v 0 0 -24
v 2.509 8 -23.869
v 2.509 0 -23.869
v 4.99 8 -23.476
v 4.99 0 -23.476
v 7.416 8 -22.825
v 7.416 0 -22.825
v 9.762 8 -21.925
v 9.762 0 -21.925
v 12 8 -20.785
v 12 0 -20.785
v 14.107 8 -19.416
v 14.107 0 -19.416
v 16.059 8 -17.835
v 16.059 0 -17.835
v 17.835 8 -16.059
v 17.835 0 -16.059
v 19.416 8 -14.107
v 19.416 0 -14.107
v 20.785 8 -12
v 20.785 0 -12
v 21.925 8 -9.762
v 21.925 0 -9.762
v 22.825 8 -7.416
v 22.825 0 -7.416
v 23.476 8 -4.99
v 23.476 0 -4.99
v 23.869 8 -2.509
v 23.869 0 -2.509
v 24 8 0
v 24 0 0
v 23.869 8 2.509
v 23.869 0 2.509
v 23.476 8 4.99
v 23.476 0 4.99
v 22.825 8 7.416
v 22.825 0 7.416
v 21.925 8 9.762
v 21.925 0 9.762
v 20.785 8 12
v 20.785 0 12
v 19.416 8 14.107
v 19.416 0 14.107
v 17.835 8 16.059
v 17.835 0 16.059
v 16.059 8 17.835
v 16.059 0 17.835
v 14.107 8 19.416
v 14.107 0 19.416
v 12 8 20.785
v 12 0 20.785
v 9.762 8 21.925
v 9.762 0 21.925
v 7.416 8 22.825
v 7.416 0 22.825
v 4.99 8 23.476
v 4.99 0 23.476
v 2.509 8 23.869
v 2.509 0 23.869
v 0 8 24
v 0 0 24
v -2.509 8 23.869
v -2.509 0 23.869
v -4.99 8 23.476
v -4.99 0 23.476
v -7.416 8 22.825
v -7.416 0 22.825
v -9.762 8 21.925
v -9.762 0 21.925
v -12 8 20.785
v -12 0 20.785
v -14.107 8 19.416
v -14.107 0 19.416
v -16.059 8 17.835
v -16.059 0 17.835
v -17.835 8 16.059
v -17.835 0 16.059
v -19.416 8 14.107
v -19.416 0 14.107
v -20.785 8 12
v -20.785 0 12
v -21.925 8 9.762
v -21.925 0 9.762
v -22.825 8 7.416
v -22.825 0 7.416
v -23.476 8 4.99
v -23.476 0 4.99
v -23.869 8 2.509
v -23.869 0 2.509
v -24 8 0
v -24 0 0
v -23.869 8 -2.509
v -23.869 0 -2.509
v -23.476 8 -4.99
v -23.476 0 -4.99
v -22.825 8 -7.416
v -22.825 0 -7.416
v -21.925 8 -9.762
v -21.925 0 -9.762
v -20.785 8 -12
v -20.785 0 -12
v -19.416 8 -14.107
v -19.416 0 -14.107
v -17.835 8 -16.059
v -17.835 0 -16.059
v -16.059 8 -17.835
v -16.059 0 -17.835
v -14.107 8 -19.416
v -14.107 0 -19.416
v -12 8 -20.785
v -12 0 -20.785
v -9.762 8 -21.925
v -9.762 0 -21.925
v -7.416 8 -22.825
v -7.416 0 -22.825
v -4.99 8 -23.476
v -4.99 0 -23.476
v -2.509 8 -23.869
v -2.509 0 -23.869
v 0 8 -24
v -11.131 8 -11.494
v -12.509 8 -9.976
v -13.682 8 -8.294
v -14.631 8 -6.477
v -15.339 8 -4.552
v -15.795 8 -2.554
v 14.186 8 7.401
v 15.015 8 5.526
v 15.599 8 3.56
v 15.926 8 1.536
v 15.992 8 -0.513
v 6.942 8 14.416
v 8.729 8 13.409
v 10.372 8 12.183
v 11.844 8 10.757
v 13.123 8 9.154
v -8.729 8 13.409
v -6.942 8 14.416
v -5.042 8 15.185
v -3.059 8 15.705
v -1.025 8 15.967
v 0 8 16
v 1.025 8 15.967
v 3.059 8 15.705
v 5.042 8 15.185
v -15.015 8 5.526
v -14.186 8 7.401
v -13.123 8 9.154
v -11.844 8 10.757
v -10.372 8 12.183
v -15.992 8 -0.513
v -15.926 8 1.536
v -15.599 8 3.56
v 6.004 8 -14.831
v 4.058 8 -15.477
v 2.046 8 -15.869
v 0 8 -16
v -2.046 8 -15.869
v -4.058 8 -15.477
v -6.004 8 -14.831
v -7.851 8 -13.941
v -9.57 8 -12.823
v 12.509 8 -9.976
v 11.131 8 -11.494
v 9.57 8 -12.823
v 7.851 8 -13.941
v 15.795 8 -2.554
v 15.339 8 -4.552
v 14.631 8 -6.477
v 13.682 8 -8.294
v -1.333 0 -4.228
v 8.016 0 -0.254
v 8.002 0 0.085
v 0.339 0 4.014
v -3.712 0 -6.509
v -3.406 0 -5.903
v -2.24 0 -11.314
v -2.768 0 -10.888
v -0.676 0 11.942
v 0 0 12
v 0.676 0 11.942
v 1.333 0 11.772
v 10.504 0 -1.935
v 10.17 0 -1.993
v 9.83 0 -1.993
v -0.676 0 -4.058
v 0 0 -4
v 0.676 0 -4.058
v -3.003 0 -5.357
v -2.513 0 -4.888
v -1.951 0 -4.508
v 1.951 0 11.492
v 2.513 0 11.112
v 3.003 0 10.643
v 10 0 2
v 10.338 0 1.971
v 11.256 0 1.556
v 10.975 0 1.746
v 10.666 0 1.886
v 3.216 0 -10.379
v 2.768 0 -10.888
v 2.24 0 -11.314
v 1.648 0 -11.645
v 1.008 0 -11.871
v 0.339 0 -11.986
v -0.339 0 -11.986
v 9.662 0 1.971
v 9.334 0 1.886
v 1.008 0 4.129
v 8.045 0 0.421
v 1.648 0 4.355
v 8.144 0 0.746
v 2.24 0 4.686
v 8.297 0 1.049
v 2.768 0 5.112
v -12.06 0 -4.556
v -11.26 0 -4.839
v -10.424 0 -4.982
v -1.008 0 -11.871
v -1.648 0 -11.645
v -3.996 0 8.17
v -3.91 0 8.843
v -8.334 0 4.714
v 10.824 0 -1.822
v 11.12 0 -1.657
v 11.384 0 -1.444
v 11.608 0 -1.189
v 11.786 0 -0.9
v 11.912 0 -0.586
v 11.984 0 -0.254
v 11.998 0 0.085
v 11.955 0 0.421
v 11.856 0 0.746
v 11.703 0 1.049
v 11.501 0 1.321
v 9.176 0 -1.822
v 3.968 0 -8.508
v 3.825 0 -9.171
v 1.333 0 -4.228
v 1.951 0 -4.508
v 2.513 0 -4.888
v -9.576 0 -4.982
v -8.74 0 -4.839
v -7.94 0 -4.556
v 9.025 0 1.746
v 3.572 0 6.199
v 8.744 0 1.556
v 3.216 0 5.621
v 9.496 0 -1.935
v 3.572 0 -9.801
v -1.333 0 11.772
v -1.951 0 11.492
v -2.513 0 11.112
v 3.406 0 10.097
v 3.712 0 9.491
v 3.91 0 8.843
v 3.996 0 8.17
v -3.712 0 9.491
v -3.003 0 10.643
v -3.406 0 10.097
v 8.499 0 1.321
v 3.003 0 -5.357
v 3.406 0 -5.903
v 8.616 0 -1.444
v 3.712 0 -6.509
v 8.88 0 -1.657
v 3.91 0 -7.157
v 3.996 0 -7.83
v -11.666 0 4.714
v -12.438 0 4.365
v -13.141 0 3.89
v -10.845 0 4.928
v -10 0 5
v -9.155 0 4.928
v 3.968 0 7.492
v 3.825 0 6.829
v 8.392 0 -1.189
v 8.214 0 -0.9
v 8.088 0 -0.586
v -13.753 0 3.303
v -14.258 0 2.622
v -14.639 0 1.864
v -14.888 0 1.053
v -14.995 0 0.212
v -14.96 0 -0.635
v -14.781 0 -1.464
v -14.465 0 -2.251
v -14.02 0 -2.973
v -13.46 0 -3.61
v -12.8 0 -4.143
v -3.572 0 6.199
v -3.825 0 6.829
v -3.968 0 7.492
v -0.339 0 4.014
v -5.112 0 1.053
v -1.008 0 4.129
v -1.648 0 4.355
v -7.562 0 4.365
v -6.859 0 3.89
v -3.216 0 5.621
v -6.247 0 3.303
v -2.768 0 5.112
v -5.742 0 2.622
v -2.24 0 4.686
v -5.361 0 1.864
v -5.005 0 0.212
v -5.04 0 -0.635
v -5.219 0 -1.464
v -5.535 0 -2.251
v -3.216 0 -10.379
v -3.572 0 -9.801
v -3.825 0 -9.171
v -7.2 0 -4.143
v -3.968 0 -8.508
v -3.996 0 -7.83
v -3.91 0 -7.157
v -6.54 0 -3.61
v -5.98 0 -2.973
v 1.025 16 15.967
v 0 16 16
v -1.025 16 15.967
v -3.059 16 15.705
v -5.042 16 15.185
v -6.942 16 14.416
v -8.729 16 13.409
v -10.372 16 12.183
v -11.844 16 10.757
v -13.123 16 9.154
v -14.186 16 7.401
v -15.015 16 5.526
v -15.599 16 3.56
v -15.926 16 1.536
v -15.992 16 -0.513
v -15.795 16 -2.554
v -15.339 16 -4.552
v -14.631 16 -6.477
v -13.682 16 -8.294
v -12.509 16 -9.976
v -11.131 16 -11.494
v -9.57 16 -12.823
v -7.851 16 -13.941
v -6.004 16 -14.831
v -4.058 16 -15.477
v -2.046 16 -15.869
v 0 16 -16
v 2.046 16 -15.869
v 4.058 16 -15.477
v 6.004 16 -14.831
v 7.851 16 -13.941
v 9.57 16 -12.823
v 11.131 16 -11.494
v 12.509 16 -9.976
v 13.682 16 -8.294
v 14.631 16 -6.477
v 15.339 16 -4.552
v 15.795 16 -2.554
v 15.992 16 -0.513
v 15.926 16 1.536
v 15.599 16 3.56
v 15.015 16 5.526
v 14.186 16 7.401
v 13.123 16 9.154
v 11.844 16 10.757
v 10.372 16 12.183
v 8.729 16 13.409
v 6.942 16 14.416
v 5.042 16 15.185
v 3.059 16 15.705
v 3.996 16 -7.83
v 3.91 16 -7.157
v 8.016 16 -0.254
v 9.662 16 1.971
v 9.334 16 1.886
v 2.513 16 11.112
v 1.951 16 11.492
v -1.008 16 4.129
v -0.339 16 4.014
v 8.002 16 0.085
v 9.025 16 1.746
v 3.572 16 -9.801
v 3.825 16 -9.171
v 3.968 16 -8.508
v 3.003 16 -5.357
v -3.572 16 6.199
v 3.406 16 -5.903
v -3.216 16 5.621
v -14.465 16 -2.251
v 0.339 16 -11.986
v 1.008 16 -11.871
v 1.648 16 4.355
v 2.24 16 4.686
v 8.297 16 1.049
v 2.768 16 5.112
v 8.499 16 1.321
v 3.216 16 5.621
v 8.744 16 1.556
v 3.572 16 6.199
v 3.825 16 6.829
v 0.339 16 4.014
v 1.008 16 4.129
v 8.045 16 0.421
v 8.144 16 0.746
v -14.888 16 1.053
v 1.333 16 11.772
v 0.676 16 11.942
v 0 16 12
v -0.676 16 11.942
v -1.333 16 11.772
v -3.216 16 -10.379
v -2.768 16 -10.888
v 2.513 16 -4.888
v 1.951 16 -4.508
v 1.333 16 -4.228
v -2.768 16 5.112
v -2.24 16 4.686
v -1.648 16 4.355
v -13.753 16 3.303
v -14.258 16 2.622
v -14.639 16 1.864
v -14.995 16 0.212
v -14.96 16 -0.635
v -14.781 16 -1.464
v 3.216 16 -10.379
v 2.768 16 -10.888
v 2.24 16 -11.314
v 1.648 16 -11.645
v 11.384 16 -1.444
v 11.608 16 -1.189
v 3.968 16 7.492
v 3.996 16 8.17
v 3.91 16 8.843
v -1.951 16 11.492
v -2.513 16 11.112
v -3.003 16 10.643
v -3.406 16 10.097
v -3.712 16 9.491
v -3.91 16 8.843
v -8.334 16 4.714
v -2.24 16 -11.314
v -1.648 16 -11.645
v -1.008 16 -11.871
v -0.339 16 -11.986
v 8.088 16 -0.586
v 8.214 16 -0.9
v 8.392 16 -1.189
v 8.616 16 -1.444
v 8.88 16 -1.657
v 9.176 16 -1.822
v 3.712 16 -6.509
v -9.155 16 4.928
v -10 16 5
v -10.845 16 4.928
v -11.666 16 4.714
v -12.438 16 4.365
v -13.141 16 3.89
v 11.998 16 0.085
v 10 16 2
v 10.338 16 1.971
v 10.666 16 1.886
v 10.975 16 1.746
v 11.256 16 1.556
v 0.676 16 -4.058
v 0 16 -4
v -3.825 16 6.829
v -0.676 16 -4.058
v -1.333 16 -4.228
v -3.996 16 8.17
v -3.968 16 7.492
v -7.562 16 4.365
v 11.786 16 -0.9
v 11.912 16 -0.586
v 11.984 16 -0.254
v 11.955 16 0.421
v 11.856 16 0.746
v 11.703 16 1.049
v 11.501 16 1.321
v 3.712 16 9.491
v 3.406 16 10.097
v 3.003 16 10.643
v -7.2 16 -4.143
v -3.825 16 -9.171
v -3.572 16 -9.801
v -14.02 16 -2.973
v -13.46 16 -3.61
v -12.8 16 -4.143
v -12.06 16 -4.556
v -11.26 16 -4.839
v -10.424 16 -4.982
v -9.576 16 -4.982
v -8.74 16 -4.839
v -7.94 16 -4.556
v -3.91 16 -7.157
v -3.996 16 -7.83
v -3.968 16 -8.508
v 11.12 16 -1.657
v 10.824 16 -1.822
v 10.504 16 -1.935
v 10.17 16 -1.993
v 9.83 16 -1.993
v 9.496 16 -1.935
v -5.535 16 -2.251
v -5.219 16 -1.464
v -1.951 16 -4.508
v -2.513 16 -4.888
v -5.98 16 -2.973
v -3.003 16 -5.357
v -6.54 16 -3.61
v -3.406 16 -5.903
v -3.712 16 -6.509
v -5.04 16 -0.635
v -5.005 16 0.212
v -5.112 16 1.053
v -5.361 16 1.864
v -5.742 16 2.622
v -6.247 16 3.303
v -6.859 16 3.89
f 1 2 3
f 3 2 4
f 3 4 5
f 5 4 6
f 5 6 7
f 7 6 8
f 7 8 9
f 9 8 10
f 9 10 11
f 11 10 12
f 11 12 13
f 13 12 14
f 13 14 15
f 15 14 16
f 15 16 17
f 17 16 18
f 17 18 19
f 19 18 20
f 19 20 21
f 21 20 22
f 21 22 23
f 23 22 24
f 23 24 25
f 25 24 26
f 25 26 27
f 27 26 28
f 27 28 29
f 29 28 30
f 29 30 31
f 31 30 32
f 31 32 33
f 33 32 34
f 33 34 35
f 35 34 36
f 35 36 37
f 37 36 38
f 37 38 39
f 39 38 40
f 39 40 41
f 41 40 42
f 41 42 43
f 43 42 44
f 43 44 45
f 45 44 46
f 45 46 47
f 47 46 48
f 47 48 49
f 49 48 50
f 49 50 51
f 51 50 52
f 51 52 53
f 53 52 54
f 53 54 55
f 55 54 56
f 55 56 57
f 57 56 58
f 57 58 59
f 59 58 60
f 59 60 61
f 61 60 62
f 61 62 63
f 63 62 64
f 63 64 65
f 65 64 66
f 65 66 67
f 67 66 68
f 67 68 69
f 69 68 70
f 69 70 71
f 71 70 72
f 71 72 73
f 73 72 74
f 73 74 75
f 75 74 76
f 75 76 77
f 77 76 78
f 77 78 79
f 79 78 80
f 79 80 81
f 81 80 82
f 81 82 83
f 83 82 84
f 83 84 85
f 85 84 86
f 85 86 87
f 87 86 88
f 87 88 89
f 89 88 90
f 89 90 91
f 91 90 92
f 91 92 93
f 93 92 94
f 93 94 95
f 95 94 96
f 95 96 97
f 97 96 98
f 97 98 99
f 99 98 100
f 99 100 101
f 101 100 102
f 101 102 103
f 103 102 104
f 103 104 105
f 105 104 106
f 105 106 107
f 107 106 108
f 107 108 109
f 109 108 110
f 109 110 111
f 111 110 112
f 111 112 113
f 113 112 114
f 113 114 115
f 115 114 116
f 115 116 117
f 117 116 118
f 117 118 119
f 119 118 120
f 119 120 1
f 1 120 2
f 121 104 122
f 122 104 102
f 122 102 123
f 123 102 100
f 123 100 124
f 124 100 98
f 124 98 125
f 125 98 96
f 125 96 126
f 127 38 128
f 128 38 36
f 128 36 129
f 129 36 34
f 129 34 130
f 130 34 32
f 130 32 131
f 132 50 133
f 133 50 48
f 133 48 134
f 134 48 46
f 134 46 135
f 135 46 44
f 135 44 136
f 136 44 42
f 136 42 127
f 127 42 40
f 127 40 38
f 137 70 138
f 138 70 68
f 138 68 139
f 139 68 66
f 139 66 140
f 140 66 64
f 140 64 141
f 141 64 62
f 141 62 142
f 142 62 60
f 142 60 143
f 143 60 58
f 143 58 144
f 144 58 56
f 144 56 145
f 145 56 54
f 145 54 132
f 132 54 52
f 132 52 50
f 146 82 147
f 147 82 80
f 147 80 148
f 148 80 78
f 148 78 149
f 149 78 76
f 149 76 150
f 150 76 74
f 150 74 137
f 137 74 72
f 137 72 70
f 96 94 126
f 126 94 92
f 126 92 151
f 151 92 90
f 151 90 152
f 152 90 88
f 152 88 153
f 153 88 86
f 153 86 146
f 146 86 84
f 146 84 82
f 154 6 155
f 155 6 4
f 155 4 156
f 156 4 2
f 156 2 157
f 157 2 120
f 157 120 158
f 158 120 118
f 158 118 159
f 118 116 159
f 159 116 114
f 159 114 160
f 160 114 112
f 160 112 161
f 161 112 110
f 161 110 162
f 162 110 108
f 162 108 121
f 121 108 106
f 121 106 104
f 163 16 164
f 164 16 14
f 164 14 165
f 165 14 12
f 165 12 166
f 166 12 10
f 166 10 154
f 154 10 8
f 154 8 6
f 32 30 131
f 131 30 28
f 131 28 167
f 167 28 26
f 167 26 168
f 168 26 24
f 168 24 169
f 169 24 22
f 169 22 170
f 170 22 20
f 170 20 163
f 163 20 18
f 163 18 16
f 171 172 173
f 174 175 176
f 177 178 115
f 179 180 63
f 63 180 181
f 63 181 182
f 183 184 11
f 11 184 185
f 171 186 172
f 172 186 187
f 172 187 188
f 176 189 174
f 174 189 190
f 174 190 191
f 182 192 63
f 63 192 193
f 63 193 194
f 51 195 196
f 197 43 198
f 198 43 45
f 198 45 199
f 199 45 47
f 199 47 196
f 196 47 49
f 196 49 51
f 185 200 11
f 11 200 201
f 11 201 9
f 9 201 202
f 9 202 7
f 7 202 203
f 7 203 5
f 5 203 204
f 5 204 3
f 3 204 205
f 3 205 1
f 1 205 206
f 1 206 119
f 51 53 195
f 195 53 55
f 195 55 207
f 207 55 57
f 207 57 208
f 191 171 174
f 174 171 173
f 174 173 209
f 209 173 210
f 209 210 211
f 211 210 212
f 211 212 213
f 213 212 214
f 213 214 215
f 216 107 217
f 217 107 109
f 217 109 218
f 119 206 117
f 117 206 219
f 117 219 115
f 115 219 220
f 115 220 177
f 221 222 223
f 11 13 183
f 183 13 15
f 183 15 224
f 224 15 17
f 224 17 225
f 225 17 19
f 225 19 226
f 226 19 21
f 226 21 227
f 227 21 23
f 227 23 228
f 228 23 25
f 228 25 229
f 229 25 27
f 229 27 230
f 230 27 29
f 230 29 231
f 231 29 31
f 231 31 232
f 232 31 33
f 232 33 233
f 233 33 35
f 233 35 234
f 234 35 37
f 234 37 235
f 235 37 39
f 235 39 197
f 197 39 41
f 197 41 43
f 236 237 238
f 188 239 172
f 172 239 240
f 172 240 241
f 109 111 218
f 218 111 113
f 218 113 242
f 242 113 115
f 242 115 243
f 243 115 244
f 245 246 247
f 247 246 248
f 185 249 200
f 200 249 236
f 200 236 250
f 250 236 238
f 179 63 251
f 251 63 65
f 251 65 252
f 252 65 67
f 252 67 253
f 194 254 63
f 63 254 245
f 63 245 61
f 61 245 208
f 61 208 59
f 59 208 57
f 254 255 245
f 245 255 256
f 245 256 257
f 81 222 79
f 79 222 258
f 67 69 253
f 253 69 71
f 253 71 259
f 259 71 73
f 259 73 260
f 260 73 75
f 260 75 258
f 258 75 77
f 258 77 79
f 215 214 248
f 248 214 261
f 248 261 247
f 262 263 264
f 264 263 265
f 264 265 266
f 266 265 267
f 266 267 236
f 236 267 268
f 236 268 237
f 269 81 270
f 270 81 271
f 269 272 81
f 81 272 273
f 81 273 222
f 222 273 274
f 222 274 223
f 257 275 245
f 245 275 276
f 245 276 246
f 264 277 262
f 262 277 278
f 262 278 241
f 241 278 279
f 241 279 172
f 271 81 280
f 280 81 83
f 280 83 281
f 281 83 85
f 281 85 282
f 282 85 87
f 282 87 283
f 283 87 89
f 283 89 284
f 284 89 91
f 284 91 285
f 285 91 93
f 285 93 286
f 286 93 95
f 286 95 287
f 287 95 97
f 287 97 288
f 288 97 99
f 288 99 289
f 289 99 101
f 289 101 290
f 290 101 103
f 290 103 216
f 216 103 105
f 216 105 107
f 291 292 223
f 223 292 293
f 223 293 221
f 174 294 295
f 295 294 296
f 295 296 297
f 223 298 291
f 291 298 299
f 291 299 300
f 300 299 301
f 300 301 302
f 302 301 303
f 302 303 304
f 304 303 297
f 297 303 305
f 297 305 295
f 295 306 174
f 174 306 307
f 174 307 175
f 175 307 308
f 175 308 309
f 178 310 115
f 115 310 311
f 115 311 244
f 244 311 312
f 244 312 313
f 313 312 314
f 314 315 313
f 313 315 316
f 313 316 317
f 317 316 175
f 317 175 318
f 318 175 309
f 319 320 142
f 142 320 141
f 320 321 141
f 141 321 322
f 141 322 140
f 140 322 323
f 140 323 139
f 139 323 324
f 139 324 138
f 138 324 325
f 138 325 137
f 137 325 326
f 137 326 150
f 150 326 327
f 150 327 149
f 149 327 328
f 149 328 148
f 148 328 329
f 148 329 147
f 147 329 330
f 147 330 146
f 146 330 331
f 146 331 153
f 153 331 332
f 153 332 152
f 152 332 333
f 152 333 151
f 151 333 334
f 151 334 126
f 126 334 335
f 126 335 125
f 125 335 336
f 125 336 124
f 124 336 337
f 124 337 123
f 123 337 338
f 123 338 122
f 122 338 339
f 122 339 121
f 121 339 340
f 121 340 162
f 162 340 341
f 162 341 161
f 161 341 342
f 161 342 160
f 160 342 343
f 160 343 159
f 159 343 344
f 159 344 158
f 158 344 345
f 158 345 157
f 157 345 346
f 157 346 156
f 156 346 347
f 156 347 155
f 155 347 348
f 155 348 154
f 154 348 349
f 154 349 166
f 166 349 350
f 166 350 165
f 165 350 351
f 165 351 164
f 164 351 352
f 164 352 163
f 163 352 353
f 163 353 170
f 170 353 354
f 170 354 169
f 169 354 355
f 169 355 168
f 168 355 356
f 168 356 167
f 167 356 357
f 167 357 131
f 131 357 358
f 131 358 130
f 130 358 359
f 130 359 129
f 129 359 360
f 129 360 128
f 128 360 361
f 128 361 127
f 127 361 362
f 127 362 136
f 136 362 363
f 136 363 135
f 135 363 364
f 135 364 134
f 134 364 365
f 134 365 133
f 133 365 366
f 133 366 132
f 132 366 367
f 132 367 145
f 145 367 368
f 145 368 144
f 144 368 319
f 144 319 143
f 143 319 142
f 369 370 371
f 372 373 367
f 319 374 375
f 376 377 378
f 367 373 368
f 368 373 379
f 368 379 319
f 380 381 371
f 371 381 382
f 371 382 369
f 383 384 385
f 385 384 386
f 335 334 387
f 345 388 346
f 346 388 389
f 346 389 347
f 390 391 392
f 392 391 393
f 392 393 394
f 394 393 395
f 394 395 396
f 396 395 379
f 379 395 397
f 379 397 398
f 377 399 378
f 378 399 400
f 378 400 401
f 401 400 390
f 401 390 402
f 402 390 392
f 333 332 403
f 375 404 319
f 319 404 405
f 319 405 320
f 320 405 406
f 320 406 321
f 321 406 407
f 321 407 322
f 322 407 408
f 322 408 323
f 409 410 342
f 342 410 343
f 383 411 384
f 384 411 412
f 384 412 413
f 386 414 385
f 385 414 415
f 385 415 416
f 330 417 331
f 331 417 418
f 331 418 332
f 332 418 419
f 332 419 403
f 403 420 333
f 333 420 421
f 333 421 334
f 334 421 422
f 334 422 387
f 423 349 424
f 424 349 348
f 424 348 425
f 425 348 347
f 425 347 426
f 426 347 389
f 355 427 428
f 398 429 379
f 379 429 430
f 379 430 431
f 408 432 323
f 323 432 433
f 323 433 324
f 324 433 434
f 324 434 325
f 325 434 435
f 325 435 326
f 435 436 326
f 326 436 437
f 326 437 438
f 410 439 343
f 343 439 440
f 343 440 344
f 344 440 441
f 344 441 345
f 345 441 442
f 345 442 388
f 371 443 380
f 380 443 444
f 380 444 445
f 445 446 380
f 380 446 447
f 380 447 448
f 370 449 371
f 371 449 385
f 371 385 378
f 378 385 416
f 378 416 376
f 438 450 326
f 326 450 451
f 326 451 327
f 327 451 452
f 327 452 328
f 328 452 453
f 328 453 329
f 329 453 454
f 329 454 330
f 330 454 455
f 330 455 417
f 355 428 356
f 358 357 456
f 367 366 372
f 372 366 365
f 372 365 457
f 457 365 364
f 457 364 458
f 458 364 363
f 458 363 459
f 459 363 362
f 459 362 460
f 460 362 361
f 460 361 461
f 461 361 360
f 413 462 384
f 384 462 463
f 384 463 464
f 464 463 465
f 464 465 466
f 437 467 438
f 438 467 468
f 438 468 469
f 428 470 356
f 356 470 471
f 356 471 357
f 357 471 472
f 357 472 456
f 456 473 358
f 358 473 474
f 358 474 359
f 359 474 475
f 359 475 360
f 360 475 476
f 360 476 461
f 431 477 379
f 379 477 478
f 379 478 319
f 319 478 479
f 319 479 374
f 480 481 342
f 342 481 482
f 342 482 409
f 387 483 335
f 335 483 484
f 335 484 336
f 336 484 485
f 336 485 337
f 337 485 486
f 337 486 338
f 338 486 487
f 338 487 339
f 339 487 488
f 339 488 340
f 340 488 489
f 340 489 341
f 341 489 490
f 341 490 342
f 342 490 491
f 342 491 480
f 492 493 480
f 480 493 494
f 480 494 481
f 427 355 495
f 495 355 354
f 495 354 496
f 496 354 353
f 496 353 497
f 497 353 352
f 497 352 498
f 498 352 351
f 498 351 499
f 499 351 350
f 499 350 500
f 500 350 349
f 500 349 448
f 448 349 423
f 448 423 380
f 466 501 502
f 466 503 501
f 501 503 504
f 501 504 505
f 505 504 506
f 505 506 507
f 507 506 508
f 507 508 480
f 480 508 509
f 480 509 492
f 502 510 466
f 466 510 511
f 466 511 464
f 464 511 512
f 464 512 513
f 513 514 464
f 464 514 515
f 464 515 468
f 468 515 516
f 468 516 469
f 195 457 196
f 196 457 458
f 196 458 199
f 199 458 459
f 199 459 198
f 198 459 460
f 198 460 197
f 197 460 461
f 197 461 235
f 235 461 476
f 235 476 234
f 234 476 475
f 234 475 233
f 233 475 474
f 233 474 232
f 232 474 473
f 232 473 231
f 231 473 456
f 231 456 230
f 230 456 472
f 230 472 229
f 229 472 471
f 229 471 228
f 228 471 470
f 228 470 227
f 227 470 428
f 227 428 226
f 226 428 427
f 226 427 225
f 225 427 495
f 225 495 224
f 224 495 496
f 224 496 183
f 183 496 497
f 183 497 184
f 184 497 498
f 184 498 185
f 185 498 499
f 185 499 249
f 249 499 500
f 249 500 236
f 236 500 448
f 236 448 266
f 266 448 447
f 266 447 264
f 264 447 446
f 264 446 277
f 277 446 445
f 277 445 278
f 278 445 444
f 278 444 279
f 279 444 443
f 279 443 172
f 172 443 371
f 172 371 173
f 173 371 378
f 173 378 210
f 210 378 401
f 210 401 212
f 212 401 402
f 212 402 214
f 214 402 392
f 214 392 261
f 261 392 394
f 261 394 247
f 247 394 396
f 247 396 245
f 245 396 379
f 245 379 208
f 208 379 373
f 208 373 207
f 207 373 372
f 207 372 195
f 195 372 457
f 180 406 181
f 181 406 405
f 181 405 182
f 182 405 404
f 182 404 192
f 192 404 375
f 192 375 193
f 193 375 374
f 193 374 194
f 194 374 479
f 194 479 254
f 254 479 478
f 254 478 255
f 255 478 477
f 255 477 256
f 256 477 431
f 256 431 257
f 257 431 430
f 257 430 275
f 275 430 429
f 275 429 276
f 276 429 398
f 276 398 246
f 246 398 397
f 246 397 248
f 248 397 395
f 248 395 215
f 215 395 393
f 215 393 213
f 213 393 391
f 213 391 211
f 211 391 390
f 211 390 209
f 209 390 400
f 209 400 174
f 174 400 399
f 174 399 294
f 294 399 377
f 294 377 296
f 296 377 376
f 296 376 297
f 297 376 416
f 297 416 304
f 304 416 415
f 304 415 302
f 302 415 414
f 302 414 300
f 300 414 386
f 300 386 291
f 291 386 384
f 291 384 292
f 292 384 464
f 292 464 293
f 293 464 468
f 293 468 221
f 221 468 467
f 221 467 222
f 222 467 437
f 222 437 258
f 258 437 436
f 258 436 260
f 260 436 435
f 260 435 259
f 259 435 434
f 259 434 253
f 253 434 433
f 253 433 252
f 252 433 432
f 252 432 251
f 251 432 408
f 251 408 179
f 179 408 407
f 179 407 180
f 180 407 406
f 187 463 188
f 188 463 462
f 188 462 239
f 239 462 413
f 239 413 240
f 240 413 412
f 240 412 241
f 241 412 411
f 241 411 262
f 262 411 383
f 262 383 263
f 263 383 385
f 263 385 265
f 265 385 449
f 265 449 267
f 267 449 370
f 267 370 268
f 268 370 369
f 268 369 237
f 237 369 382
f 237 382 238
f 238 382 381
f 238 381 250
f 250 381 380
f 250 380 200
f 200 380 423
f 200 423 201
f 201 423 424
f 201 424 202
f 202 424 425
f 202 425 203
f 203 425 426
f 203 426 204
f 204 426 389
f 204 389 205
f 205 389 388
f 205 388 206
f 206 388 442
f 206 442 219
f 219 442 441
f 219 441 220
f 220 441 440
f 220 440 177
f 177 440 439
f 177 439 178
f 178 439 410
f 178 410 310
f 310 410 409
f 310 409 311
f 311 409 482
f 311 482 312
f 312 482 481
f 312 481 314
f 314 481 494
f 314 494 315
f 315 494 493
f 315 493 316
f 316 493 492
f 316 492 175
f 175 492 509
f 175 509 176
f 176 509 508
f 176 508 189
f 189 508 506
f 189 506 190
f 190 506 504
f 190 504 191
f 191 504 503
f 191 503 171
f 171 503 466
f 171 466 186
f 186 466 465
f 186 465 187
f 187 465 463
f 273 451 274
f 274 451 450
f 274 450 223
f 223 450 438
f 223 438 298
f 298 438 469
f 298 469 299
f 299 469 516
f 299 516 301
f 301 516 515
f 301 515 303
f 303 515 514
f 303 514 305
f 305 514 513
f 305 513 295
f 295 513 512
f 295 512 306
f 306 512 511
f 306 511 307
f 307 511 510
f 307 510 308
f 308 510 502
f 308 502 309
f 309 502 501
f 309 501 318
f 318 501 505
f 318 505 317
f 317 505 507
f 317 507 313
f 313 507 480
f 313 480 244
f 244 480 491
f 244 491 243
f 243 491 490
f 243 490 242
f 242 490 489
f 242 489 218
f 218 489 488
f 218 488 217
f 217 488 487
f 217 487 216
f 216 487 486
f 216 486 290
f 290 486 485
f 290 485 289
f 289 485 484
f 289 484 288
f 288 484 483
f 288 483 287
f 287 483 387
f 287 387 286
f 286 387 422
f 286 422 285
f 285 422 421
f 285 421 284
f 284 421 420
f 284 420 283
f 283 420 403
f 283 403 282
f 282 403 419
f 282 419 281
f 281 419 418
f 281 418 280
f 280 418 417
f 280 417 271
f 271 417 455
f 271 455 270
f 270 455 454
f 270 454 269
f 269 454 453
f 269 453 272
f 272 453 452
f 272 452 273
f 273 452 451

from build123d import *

# Parameters (mm, degrees)
SKETCH_1_R          = 24
EXTRUDE_1_DEPTH     = 8
SKETCH_2_R          = 16
EXTRUDE_2_DEPTH     = 8
SKETCH_4_R          = 5
SKETCH_4_R_2        = 4
SKETCH_4_R_3        = 2
CUT_EXTRUDE_1_DEPTH = 38.523326079


with BuildPart() as part:
    # 草图1 → 凸台-拉伸1 (new body)
    with BuildSketch(Plane(origin=(0, 0, 0), x_dir=(1, 0, 0), z_dir=(0, 1, 0))):
        with Locations(Location((0, 0, 0), (0, 0, 270))):
            Circle(SKETCH_1_R)
    extrude(amount=EXTRUDE_1_DEPTH)

    # 草图2 → 凸台-拉伸2 (add)
    with BuildSketch(Plane(origin=(0, 8, 0), x_dir=(1, 0, 0), z_dir=(0, 1, 0))):
        with Locations(Location((0, 0, 0), (0, 0, 270))):
            Circle(SKETCH_2_R)
    extrude(amount=EXTRUDE_2_DEPTH)

    # 草图4 → 切除-拉伸1 (cut, through all)
    with BuildSketch(Plane(origin=(0, 16, 0), x_dir=(1, 0, 0), z_dir=(0, 1, 0))):
        with Locations(Location((-10, 0, 0), (0, 0, 270))):
            Circle(SKETCH_4_R)
        with Locations(Location((0, 8, 0), (0, 0, 270))):
            Circle(SKETCH_4_R_2)
        with Locations(Location((0, -8, 0), (0, 0, 270))):
            Circle(SKETCH_4_R_2)
        with Locations(Location((10, 0, 0), (0, 0, 270))):
            Circle(SKETCH_4_R_3)
    extrude(amount=-CUT_EXTRUDE_1_DEPTH, mode=Mode.SUBTRACT)


solid = part.part
